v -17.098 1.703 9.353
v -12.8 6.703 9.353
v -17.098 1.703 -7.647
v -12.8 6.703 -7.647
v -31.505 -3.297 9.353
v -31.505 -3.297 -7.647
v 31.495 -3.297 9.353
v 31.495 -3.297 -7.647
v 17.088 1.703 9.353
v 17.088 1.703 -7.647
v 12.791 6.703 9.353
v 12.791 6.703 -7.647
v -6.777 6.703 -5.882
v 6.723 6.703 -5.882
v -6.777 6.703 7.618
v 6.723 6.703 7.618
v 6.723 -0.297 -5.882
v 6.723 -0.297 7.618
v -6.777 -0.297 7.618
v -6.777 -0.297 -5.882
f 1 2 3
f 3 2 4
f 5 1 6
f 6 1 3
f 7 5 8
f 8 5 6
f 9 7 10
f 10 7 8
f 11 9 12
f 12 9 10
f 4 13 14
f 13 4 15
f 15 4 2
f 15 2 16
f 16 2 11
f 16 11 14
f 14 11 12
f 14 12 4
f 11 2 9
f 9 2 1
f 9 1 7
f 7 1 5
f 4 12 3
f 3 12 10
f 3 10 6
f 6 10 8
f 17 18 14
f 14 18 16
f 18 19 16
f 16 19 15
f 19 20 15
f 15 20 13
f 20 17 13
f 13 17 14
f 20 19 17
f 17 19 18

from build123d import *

# Parameters (mm, degrees)
EXTRUDE_2_DEPTH     = 1.7
CUT_EXTRUDE_START   = 0.3
SKETCH_3_W          = 1.35
SKETCH_3_H          = 1.35
CUT_EXTRUDE_2_DEPTH = 1
SCALE_1_SCALE       = 10


with BuildPart() as part:
    # 스케치1 → 보스-돌출2 (new body)
    with BuildSketch(Plane.XY):
        Polygon((-3.15, 0), (3.15, 0), (1.709287021, 0.5), (1.279556076, 1), (-1.279556076, 1), (-1.709287021, 0.5), align=None)
    extrude(amount=EXTRUDE_2_DEPTH)

    # 스케치3 → 컷-돌출2 (cut)
    with BuildSketch(Plane(origin=(0, 1, 0), x_dir=(1, 0, 0), z_dir=(0, 1, 0)).offset(CUT_EXTRUDE_START)):
        with Locations((-0.002241196, -0.851457908)):
            Rectangle(SKETCH_3_W, SKETCH_3_H)
    extrude(amount=-CUT_EXTRUDE_2_DEPTH, mode=Mode.SUBTRACT)


with BuildPart() as part_1:
    # 축척1: scaled about (0.000529957, 0.366302106, 0.84965526)
    add(part.part.scale(SCALE_1_SCALE).moved(Location((-0.004769613, -3.296718954, -7.64689734))))


solid = part_1.part
